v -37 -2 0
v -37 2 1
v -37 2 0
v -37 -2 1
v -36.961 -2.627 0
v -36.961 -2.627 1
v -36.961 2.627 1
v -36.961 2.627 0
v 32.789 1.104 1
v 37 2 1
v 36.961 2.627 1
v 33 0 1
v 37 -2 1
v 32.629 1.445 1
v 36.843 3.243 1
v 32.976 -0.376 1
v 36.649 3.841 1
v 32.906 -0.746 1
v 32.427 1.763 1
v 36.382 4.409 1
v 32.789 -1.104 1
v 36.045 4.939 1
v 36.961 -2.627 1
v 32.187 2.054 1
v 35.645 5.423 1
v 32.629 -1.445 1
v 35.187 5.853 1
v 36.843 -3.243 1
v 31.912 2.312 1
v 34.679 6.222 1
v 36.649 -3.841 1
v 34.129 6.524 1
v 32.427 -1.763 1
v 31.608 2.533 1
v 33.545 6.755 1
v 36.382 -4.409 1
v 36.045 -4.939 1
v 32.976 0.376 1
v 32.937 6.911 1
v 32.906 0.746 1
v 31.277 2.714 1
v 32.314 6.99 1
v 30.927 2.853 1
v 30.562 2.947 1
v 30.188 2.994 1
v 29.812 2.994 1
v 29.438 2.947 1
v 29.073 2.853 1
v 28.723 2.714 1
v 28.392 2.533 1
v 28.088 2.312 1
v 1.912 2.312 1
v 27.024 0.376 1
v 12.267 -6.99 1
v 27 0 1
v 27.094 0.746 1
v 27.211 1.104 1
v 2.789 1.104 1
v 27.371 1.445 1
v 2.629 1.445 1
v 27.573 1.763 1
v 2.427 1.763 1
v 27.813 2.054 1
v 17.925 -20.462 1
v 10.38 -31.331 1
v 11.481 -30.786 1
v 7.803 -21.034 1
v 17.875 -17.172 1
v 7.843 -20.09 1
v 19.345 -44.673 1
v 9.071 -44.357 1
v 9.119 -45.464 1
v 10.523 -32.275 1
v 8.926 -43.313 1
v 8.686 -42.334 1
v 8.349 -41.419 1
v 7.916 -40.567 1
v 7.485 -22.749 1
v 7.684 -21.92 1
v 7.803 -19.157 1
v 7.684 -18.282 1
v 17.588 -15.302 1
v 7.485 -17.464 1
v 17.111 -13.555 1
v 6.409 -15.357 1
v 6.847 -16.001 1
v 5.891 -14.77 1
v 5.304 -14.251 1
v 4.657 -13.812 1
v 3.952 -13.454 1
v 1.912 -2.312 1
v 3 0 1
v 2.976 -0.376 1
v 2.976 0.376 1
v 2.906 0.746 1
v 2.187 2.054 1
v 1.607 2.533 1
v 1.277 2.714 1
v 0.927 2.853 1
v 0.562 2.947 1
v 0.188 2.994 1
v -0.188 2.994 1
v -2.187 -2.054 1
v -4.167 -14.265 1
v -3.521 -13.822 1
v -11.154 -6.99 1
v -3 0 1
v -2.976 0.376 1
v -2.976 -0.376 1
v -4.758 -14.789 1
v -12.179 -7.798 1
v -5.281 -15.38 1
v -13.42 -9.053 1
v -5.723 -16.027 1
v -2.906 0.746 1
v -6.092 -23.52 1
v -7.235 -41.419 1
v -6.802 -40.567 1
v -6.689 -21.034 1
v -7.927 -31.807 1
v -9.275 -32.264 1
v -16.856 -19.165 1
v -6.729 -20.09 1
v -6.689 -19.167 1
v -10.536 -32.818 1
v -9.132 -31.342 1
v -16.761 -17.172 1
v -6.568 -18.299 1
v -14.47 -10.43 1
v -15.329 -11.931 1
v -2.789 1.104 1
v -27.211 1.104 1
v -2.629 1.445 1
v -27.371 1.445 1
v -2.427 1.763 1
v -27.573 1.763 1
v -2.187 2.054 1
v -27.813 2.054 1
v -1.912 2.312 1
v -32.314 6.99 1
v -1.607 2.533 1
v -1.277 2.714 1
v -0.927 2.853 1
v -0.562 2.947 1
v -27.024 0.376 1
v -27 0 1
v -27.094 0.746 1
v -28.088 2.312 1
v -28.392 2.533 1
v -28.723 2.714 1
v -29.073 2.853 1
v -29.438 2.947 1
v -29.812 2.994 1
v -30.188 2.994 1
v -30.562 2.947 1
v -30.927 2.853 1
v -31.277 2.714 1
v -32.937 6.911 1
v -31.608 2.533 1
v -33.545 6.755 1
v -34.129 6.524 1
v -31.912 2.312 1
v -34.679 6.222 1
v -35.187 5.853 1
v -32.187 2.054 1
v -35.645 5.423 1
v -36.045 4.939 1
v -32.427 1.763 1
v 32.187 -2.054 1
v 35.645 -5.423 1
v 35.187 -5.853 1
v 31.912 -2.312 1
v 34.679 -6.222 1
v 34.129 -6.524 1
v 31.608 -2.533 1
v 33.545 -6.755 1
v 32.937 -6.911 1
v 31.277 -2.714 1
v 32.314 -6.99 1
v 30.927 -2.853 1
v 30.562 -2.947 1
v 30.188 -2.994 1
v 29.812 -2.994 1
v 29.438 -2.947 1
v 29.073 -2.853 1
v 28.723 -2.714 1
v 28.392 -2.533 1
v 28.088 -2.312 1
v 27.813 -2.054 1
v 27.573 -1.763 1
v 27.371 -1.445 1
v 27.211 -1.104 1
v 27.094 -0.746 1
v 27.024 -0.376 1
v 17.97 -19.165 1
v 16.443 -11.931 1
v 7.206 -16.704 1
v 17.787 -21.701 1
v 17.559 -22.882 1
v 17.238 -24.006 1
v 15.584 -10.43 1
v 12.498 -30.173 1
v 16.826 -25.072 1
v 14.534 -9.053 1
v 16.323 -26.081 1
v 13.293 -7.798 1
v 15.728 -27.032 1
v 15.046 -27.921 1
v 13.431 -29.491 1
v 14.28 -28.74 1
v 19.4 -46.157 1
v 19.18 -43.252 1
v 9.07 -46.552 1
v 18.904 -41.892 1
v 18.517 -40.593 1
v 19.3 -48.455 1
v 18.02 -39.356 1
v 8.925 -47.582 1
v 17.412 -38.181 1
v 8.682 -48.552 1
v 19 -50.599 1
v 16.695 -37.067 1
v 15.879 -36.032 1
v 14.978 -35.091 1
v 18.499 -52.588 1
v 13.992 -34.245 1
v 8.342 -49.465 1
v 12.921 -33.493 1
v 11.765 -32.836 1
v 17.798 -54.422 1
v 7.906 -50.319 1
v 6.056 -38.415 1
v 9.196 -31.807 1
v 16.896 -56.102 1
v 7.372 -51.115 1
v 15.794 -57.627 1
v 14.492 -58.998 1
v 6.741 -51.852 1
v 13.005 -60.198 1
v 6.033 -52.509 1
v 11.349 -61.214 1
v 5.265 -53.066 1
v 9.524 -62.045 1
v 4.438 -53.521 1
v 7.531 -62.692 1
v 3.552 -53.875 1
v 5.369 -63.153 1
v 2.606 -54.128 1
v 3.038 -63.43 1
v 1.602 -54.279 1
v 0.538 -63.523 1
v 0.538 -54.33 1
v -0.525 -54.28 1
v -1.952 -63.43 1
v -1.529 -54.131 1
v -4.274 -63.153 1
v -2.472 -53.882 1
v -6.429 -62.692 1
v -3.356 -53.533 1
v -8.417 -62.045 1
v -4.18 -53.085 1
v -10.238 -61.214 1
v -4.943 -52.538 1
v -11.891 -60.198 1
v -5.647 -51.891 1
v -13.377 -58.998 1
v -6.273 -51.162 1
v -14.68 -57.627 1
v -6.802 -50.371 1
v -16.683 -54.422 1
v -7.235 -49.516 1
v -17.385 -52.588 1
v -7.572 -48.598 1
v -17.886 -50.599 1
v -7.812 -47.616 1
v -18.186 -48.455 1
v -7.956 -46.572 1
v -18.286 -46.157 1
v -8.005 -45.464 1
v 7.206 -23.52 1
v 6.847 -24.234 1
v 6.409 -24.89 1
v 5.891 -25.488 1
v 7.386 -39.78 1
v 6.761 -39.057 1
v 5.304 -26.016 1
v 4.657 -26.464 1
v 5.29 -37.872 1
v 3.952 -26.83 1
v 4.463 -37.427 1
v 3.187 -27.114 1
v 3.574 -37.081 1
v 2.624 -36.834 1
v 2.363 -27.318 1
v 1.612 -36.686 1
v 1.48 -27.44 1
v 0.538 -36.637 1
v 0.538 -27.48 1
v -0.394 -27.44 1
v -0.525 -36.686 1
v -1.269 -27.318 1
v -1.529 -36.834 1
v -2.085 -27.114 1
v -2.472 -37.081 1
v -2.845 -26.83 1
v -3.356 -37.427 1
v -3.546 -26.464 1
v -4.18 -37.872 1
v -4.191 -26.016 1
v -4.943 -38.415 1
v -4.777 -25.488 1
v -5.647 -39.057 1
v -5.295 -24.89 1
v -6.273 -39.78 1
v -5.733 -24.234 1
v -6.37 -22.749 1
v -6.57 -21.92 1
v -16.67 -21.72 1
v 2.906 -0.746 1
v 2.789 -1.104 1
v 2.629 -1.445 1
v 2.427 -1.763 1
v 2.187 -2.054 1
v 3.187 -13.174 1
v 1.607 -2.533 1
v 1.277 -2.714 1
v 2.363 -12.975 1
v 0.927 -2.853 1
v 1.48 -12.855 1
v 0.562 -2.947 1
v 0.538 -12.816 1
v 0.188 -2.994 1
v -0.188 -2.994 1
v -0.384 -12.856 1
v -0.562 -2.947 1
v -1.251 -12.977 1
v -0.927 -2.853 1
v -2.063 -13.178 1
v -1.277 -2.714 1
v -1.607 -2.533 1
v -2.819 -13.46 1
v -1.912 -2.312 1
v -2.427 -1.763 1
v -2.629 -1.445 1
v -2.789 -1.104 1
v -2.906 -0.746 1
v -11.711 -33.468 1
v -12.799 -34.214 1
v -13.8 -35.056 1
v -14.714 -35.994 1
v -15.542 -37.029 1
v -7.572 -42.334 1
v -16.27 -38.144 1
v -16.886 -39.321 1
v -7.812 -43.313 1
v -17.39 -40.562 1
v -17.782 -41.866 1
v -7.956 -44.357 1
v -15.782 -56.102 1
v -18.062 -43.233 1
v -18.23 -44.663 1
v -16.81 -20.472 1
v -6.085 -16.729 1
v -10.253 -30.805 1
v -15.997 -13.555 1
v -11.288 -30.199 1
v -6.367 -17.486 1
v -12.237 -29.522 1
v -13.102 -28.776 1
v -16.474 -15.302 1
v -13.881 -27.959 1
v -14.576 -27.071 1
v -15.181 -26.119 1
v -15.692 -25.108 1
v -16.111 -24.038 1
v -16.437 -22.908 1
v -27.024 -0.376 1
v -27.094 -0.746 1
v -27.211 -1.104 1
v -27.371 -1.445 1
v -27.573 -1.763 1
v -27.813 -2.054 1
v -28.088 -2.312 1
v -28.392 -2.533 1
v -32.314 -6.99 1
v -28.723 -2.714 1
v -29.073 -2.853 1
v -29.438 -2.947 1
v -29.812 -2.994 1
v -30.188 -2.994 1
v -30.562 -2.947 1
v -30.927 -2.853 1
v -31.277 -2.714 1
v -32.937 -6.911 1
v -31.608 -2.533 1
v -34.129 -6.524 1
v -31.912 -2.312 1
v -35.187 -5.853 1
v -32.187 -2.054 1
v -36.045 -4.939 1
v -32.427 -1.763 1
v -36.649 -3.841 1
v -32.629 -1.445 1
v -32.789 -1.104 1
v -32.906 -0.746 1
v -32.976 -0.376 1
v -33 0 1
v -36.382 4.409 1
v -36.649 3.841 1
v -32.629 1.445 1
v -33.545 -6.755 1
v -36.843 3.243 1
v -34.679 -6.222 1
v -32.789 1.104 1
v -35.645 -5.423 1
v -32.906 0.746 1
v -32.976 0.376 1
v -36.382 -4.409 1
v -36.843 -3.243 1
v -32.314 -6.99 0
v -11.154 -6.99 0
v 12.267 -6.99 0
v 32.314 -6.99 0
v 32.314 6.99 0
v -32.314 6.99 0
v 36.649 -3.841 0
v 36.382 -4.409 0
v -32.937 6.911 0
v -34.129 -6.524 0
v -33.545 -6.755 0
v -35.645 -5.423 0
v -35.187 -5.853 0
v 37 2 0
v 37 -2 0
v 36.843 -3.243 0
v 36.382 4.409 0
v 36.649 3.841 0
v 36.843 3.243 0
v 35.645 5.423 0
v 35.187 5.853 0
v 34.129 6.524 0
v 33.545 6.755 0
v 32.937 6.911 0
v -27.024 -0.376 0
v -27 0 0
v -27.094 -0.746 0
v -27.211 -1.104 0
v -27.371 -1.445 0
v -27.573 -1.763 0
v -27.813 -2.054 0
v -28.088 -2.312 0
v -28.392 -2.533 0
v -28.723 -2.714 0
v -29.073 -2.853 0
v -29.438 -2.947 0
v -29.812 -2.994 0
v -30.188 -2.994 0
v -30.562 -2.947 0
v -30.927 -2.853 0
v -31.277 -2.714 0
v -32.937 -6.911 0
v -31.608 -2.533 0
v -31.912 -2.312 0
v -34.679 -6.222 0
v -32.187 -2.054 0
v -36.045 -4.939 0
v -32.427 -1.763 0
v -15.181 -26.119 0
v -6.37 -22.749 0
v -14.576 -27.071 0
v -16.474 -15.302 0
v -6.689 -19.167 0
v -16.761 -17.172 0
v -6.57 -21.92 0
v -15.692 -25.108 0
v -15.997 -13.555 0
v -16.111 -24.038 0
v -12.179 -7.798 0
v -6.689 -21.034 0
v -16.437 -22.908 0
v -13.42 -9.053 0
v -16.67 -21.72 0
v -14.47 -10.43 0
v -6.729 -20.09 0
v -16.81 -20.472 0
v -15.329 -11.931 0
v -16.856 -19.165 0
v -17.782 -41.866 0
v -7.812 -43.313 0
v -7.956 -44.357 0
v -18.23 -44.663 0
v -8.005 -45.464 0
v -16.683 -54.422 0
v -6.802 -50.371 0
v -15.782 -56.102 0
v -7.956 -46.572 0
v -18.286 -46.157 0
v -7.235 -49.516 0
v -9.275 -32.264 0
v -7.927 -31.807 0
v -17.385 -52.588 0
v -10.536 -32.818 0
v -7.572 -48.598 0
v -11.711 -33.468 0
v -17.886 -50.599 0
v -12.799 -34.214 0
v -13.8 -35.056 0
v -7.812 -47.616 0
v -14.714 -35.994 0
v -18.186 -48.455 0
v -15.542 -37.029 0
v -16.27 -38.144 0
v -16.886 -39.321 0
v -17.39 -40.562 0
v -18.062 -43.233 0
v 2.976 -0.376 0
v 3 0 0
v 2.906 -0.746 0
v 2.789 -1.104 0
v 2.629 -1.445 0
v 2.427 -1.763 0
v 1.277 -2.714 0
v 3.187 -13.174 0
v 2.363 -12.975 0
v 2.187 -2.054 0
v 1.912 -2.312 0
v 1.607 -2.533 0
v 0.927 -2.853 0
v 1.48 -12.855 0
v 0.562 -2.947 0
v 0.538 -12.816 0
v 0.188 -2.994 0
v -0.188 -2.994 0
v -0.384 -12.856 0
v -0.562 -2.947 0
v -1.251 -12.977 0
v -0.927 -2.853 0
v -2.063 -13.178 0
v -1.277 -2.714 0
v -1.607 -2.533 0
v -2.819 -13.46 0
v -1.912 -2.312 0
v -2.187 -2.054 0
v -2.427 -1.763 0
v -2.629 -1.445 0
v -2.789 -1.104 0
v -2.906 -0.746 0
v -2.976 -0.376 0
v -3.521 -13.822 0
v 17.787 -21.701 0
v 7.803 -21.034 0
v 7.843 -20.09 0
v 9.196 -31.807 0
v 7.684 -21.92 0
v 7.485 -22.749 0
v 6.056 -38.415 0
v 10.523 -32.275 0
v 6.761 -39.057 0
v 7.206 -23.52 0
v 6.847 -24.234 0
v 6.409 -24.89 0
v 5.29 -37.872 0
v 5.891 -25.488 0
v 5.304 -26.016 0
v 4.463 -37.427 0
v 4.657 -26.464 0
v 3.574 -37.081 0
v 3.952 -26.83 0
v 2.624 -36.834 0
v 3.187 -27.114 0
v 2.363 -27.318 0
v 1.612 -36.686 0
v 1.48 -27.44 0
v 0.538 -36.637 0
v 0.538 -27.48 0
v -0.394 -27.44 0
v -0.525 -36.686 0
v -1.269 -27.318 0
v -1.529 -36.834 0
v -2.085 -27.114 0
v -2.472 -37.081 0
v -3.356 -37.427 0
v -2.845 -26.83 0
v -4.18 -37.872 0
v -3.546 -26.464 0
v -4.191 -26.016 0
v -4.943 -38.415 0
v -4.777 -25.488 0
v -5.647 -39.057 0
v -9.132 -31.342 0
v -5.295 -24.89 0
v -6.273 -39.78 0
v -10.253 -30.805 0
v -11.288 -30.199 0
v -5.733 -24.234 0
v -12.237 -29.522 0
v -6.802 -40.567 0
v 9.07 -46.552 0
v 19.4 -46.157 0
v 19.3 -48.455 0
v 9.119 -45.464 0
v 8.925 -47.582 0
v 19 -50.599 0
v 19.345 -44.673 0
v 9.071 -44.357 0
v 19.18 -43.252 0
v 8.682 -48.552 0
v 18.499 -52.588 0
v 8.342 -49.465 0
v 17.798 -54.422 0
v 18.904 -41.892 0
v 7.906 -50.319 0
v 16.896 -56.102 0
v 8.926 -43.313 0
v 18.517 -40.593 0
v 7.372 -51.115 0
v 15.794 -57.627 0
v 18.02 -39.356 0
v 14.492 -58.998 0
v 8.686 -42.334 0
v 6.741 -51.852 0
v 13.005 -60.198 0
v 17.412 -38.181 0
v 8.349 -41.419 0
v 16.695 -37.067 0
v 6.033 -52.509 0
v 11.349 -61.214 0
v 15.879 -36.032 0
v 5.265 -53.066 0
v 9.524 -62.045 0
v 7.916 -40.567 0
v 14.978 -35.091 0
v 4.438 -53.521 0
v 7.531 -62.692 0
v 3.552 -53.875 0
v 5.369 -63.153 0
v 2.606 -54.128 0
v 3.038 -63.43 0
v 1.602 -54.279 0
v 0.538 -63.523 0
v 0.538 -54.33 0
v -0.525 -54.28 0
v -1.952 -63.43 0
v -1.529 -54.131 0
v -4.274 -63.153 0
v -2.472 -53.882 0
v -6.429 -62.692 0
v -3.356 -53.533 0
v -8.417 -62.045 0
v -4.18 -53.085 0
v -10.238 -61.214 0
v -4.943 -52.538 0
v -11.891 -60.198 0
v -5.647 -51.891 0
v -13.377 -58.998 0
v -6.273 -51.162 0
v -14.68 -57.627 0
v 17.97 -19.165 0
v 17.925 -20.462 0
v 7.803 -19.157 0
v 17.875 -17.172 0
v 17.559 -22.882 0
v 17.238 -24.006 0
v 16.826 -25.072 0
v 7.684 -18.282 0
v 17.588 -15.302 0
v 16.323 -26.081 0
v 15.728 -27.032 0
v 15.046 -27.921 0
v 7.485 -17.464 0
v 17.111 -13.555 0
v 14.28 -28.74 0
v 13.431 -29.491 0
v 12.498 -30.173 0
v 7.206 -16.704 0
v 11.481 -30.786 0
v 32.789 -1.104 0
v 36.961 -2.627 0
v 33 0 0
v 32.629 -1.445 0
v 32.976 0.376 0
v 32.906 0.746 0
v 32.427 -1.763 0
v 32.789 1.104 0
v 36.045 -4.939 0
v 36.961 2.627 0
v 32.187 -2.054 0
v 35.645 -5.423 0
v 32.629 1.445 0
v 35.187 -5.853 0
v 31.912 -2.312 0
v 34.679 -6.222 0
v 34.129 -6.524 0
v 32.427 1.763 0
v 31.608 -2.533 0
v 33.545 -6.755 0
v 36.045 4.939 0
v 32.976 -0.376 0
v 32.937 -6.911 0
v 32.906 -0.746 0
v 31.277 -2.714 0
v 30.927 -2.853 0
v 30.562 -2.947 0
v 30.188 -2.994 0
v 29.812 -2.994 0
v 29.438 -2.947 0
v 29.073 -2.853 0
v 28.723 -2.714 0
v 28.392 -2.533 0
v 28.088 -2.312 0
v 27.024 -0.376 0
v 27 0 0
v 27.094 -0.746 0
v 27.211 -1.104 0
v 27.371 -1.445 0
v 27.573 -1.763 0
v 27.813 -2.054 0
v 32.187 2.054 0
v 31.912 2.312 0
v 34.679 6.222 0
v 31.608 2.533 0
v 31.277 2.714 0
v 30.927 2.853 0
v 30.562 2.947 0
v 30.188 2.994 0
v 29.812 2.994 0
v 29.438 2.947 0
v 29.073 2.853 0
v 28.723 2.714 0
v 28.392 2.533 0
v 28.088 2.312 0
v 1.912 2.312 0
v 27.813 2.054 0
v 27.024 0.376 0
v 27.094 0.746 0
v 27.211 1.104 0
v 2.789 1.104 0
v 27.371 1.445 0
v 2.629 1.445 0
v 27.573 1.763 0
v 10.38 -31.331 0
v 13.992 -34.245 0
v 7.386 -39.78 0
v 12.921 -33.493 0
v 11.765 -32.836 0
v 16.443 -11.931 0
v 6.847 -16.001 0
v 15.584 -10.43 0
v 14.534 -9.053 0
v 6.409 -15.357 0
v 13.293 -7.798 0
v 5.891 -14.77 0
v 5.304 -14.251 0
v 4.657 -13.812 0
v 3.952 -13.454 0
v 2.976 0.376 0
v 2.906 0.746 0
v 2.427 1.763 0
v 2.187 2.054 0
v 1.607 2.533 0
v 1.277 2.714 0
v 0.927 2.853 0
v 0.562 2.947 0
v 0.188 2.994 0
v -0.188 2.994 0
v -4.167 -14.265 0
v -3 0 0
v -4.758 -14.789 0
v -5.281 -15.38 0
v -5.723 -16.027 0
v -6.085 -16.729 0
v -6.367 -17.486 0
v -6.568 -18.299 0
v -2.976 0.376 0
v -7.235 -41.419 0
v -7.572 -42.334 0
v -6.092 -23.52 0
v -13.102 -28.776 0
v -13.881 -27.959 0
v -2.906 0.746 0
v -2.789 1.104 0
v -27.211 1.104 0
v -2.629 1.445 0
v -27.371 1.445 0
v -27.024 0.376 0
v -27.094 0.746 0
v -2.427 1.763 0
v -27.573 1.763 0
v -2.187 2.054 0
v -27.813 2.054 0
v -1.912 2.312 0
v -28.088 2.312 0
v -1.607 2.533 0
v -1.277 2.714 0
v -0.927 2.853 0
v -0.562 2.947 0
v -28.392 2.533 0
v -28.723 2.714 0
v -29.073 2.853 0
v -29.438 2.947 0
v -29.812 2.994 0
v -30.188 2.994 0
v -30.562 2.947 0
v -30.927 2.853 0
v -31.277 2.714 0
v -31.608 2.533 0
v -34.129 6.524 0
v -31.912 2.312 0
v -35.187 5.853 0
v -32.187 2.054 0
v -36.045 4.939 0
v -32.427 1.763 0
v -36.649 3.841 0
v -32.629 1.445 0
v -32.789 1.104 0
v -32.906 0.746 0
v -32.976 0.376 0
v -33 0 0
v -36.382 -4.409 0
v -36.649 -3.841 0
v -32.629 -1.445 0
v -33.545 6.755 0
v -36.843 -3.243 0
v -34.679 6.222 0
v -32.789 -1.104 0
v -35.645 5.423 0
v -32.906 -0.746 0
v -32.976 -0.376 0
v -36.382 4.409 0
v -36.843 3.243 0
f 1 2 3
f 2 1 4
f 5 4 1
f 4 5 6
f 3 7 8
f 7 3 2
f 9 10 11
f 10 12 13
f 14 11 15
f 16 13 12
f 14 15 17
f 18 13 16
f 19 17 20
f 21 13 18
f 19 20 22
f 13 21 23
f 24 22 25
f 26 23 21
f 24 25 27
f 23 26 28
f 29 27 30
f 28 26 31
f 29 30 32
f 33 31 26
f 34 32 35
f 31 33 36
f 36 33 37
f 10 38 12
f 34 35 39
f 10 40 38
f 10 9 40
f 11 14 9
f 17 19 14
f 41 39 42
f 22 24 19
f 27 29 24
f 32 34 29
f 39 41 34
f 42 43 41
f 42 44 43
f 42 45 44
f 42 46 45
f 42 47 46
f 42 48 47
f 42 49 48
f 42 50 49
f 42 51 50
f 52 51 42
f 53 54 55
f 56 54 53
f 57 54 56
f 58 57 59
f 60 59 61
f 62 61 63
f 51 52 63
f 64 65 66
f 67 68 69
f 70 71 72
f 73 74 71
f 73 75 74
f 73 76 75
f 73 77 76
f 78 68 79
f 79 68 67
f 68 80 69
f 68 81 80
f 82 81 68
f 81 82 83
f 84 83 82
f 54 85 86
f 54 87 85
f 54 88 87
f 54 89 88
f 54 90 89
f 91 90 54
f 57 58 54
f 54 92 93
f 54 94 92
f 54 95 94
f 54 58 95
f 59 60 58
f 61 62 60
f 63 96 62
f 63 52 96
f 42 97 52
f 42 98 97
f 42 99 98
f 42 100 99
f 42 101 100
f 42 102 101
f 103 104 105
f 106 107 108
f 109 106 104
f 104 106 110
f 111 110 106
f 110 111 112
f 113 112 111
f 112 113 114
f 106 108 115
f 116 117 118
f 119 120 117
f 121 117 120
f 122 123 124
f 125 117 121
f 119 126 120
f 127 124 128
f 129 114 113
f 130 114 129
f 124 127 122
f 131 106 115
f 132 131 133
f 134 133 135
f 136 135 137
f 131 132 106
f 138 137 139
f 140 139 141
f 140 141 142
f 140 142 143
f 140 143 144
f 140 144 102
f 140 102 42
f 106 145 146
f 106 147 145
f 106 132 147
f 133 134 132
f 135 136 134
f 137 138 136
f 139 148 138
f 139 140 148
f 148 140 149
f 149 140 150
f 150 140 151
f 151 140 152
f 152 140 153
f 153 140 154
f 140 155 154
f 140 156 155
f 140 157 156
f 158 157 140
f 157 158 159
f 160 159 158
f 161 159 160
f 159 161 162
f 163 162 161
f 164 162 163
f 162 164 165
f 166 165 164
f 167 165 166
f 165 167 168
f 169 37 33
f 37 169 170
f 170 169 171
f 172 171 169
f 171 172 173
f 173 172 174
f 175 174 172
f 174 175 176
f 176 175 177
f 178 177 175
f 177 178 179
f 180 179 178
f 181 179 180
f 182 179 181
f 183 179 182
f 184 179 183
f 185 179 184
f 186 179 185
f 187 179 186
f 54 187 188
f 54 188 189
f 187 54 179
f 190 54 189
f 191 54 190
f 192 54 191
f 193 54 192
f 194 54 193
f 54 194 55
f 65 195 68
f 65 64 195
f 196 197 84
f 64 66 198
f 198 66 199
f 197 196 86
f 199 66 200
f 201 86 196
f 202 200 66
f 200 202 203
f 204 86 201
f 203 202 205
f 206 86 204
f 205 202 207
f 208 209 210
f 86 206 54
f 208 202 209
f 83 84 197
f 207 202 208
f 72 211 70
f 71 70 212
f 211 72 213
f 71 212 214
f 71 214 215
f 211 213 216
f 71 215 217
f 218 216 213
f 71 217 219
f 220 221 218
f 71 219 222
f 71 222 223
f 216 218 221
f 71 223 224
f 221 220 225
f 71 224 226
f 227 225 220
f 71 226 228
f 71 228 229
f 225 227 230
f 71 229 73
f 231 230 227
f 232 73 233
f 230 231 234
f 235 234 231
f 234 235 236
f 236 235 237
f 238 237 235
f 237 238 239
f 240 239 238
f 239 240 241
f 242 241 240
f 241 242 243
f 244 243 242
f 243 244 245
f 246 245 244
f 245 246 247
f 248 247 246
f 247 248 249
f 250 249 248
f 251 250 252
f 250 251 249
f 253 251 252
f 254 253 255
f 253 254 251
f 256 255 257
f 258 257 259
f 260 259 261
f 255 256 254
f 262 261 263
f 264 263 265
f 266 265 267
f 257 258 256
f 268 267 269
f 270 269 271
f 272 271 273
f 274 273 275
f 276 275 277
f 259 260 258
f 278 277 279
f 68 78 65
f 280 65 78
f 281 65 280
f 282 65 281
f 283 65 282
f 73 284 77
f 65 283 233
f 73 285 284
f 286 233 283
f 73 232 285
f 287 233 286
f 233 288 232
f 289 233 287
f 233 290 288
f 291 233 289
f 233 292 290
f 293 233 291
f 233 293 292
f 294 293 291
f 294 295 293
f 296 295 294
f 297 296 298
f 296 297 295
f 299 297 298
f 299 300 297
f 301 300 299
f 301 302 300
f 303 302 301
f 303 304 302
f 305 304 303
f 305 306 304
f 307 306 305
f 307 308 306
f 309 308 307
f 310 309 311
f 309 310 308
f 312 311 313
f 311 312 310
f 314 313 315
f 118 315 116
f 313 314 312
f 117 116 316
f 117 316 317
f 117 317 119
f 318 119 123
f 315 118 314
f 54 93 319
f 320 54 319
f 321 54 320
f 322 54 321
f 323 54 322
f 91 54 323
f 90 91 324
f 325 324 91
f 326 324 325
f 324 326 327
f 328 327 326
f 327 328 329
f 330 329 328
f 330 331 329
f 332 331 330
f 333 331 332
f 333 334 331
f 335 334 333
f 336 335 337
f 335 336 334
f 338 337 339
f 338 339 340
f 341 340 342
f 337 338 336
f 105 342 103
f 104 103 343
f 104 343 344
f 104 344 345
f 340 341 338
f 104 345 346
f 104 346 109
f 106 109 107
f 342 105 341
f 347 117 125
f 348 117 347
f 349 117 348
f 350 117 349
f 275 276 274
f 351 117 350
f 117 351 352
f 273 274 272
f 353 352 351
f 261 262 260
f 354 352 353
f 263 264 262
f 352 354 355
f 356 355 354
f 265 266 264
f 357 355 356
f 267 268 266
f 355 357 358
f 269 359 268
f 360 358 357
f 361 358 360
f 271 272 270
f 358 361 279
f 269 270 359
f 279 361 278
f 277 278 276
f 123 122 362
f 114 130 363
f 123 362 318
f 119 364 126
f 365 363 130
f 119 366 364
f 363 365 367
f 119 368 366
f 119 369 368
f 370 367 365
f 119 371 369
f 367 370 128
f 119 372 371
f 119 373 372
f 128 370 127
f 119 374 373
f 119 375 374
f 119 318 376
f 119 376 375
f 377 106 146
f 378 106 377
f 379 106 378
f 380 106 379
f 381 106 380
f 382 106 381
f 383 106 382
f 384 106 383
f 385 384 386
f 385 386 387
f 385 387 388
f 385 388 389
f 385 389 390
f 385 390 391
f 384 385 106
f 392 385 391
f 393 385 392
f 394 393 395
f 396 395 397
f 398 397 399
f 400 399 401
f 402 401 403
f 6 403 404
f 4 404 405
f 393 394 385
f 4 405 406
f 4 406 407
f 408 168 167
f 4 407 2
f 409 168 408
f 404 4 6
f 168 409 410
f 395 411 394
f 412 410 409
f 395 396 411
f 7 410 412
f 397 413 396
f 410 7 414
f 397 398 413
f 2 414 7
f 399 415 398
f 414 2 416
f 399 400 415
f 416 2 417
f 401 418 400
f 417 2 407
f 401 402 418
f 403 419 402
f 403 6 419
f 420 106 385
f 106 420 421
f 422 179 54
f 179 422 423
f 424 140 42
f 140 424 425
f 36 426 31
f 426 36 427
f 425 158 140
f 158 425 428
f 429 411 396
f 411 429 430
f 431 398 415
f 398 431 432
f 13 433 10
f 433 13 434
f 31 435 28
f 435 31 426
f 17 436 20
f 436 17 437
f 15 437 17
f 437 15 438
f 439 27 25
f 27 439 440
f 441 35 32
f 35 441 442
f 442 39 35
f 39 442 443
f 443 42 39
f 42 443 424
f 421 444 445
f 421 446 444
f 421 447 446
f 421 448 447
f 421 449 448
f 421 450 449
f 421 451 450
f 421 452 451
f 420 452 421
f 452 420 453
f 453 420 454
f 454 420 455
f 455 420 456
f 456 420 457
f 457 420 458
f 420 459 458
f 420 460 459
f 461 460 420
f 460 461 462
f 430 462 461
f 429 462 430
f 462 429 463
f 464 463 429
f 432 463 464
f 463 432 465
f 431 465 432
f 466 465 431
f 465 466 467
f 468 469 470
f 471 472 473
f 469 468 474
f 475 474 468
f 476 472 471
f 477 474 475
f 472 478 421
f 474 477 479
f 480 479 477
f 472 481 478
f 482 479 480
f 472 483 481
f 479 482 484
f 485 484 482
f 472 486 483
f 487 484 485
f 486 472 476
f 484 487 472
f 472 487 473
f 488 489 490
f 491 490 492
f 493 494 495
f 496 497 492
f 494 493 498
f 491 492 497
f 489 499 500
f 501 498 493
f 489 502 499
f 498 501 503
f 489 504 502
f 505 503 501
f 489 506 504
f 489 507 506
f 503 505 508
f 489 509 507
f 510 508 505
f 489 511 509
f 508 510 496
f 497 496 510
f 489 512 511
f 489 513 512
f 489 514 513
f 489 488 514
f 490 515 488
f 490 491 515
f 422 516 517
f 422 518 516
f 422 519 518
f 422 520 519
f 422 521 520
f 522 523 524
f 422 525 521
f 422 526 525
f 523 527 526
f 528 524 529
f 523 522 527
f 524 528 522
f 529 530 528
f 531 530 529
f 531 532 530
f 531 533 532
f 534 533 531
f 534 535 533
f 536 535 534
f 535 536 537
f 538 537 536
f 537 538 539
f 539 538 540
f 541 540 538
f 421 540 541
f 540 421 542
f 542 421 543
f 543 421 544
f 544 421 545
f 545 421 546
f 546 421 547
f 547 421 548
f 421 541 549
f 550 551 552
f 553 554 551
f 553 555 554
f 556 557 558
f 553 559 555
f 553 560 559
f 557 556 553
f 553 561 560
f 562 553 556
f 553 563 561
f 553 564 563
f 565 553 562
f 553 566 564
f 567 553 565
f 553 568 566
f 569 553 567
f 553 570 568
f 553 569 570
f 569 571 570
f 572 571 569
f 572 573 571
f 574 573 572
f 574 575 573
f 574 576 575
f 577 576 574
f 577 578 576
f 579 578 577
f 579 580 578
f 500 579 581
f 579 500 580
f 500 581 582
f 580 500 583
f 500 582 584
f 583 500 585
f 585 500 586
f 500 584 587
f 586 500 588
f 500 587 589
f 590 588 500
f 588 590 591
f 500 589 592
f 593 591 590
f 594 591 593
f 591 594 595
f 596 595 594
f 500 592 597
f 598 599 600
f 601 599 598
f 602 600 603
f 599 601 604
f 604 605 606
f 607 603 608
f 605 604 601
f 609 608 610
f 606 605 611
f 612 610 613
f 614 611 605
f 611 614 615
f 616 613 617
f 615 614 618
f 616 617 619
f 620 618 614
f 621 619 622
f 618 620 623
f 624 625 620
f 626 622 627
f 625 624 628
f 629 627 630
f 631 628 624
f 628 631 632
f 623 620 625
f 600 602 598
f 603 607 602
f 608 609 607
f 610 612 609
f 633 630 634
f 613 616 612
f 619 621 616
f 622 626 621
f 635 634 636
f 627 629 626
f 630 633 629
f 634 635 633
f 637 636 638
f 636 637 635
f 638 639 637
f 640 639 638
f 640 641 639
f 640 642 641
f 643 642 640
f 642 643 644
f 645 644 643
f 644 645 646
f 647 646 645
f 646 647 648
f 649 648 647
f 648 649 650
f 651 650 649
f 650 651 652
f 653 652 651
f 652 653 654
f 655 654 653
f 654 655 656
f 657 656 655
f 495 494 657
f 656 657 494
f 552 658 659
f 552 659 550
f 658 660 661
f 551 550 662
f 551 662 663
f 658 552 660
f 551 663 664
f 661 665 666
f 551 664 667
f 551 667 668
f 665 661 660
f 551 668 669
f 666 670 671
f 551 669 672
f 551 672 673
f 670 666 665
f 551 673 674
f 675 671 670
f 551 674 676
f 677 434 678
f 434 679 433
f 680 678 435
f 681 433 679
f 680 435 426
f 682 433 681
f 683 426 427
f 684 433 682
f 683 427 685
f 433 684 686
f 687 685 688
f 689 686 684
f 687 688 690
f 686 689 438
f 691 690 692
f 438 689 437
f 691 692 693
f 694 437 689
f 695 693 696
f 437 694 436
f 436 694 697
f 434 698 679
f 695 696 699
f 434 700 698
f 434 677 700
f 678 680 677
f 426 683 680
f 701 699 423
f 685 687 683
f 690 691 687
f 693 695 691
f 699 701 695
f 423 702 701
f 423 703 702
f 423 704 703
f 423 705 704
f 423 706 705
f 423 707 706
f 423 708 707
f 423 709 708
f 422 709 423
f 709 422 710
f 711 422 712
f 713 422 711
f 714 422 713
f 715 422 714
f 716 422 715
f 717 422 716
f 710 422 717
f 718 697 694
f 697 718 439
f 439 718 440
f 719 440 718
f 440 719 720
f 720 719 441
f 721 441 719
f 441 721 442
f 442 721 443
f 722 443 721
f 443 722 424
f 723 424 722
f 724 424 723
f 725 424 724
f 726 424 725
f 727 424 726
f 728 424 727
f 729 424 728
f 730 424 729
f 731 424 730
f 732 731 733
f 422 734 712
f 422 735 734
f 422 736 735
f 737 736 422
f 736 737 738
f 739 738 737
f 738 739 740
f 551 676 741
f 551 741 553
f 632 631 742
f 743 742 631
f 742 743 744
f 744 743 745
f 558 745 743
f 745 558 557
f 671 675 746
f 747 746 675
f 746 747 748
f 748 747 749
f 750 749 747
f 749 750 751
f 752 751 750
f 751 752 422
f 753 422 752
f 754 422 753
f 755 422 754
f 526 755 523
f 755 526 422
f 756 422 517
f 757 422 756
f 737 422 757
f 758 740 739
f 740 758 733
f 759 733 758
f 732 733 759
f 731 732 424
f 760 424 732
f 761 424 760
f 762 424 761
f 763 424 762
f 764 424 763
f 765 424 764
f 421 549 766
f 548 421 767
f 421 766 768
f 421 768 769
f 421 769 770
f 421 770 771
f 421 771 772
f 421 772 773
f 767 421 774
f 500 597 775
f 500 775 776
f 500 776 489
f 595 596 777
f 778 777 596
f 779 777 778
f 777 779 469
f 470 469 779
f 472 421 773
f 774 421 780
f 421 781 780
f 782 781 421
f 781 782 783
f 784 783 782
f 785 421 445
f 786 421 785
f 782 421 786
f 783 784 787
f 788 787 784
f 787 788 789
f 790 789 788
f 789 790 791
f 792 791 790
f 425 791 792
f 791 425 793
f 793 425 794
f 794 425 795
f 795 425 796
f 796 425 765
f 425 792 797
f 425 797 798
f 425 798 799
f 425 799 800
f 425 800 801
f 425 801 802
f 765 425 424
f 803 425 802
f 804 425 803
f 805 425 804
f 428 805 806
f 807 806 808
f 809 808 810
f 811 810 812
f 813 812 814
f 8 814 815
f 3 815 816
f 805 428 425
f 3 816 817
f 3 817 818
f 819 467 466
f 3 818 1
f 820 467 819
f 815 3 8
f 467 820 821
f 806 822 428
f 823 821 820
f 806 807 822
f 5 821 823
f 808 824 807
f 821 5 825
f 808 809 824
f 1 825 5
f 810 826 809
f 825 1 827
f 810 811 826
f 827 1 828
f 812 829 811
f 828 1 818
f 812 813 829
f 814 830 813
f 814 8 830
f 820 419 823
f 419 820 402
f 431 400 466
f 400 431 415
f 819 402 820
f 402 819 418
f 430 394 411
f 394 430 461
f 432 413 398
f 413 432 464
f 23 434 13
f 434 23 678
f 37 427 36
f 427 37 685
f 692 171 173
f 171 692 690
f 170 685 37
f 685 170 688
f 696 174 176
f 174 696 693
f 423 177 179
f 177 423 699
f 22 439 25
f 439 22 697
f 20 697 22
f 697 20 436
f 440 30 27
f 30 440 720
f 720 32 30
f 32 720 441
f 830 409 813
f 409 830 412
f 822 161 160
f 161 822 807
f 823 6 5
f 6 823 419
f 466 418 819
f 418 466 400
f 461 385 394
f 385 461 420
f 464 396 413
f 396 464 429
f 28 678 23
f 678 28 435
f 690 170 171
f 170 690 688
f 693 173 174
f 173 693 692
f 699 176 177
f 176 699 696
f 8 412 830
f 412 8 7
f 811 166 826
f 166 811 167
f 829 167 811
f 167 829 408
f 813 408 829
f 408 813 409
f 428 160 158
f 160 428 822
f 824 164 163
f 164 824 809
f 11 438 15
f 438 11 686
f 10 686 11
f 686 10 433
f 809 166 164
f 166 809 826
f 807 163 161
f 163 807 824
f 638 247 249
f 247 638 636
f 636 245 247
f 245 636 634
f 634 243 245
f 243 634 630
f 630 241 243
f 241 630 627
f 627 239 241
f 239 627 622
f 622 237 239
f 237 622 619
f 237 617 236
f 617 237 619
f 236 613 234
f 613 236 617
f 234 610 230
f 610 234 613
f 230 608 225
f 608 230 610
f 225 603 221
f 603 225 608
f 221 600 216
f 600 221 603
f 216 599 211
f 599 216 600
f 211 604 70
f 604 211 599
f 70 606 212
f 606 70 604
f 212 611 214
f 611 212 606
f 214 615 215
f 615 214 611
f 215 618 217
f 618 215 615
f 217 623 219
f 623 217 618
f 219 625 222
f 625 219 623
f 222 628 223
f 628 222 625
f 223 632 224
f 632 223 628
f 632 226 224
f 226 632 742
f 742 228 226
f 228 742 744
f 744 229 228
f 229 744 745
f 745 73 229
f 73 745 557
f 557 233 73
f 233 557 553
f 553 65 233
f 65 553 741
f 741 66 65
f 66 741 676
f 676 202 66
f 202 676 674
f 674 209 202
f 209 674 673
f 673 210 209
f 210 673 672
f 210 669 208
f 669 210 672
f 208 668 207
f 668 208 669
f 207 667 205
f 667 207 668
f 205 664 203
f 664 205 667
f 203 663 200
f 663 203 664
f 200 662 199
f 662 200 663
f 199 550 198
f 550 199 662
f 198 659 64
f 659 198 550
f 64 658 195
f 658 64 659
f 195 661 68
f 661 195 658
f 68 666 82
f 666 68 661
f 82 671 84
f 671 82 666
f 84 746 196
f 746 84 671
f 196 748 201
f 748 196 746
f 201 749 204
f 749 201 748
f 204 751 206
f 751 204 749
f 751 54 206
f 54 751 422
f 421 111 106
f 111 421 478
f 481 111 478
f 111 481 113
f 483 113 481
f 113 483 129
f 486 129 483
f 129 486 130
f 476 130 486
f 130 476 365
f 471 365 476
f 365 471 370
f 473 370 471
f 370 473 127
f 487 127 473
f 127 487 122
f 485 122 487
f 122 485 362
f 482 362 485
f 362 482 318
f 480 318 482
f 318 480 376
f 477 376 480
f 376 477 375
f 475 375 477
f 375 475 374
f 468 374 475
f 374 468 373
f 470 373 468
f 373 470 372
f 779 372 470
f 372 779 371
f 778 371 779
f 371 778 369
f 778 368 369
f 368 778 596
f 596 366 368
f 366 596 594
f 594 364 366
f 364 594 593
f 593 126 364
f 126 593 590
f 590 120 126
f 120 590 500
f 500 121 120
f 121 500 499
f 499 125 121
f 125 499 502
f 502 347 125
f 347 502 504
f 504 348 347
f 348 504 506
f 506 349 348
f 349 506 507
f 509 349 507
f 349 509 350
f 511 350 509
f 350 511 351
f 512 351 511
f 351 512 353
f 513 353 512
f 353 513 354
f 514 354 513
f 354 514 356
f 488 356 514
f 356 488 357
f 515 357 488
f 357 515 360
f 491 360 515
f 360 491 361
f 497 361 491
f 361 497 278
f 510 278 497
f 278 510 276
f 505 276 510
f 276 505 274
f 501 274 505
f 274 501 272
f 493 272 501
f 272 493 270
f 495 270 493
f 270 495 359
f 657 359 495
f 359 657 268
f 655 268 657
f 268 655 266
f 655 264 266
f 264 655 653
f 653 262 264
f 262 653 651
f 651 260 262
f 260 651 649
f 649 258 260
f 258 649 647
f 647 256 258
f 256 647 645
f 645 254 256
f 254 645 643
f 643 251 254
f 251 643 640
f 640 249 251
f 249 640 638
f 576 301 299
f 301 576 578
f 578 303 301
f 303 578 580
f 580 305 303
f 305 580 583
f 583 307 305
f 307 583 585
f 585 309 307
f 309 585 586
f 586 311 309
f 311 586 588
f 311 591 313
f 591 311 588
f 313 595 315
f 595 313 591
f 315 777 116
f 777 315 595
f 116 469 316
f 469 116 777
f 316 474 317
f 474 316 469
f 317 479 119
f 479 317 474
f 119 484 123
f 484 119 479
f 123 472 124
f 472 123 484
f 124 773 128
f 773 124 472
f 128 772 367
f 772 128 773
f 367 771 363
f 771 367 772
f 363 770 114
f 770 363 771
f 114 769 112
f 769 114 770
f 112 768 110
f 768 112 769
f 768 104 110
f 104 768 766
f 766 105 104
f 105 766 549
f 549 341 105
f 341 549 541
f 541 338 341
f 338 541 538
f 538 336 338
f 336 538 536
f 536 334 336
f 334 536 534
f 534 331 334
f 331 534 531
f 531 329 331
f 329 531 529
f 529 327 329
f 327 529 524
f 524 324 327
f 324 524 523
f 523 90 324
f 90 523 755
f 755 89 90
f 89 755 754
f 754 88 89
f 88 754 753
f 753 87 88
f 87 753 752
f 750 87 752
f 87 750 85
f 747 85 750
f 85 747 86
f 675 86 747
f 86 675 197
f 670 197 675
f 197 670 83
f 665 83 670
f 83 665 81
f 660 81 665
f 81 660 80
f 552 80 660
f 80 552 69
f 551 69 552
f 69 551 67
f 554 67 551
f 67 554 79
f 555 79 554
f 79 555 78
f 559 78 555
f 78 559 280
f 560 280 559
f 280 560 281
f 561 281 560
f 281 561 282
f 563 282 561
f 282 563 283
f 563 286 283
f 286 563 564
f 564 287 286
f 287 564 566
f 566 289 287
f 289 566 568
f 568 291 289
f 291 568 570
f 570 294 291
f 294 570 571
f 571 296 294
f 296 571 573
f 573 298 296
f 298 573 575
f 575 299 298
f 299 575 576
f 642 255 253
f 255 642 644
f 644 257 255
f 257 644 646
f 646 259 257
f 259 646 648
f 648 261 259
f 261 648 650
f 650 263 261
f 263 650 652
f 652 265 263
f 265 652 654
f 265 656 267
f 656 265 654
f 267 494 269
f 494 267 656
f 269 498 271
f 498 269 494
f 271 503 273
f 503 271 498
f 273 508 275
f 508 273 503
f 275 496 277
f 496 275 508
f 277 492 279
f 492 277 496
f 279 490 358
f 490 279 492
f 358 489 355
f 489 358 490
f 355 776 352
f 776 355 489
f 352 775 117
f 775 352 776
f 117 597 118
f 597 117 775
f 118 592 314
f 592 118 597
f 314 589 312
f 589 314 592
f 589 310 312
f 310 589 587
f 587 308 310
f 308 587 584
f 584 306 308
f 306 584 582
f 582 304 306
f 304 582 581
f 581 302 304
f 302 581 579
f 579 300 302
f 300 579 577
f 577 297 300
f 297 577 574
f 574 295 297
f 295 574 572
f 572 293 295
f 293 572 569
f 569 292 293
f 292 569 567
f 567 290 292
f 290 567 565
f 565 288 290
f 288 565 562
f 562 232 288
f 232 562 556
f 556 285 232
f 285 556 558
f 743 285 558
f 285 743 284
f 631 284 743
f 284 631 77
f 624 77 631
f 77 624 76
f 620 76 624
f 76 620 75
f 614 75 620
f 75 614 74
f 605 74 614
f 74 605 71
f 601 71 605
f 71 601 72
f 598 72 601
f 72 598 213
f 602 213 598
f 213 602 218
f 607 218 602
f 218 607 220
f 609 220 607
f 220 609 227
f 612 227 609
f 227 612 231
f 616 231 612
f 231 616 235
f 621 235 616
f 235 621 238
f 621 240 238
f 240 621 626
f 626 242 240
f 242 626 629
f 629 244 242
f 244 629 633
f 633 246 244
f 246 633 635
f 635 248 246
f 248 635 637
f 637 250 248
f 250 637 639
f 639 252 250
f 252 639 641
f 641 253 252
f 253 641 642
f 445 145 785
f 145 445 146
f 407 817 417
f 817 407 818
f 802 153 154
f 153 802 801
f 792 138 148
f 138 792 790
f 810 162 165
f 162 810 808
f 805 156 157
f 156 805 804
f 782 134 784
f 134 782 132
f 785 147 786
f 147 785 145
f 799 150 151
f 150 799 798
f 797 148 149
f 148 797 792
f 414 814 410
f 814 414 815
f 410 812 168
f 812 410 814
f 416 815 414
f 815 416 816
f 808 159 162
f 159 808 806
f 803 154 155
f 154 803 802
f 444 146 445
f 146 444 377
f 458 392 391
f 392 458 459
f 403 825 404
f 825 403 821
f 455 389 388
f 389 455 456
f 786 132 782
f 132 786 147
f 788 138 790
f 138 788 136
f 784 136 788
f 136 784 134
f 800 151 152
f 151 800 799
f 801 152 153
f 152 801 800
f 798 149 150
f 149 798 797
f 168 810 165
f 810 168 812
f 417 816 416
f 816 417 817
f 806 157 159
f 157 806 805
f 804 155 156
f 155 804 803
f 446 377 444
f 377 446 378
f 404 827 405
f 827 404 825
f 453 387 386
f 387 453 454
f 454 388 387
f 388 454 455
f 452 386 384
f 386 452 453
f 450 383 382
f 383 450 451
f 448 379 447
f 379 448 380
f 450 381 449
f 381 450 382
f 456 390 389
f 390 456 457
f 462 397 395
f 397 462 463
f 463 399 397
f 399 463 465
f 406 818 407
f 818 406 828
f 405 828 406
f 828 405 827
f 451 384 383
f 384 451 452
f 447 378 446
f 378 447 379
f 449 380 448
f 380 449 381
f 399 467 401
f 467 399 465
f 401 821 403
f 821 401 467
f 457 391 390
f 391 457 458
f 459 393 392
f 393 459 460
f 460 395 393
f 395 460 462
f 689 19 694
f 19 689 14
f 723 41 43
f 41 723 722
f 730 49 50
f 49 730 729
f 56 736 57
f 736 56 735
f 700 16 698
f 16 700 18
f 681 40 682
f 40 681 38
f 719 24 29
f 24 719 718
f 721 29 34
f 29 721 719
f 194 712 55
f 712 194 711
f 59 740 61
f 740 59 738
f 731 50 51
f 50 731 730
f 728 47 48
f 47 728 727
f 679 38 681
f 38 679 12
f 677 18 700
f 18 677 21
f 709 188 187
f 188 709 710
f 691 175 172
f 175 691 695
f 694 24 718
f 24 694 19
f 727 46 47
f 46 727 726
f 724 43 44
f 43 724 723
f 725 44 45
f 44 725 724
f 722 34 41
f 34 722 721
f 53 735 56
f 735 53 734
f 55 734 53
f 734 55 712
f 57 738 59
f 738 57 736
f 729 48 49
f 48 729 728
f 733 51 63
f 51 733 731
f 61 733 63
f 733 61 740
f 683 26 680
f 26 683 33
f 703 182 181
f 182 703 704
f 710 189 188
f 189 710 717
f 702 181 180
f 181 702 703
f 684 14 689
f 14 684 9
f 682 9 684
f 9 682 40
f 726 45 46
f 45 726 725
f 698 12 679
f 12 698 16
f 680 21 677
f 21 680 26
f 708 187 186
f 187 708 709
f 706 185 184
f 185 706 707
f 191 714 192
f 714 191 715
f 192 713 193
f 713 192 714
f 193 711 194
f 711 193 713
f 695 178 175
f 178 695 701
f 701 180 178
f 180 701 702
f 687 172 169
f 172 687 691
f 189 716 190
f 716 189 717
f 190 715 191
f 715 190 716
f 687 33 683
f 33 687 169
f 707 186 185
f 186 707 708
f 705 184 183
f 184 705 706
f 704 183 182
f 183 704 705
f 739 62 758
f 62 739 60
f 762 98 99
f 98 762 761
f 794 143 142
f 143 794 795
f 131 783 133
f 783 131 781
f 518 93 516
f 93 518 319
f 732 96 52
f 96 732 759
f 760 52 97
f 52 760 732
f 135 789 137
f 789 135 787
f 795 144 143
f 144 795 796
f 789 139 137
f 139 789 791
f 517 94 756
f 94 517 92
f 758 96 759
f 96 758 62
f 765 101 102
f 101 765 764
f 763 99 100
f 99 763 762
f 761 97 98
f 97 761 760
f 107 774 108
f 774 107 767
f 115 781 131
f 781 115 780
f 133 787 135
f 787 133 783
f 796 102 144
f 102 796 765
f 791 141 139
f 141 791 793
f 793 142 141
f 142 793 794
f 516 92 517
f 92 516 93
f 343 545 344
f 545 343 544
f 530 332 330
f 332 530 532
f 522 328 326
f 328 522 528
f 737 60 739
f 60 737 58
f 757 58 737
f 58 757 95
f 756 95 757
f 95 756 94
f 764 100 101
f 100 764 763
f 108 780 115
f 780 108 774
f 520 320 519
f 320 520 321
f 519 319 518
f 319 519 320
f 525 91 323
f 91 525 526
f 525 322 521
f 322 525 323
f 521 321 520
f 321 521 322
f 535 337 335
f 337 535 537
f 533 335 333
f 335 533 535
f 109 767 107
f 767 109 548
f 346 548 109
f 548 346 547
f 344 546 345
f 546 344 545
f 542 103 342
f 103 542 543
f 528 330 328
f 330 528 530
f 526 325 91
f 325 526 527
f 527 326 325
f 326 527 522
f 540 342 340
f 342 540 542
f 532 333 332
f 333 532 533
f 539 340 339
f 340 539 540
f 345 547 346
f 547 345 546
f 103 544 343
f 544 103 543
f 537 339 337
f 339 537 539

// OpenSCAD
$fn = 50;


difference() {
	union() {
		translate(v = [0, 0, 0]) {
			rotate(a = [0, 0, 0]) {
				hull() {
					translate(v = [-32.0000000000, 2.0000000000, 0]) {
						rotate(a = [0, 0, 0]) {
							translate(v = [0, 0, 0]) {
								rotate(a = [0, 0, 0]) {
									cylinder(h = 1, r = 5);
								}
							}
						}
					}
					translate(v = [32.0000000000, 2.0000000000, 0]) {
						rotate(a = [0, 0, 0]) {
							translate(v = [0, 0, 0]) {
								rotate(a = [0, 0, 0]) {
									cylinder(h = 1, r = 5);
								}
							}
						}
					}
					translate(v = [-32.0000000000, -2.0000000000, 0]) {
						rotate(a = [0, 0, 0]) {
							translate(v = [0, 0, 0]) {
								rotate(a = [0, 0, 0]) {
									cylinder(h = 1, r = 5);
								}
							}
						}
					}
					translate(v = [32.0000000000, -2.0000000000, 0]) {
						rotate(a = [0, 0, 0]) {
							translate(v = [0, 0, 0]) {
								rotate(a = [0, 0, 0]) {
									cylinder(h = 1, r = 5);
								}
							}
						}
					}
				}
			}
		}
		translate(v = [0, -5, 0]) {
			rotate(a = [0, 0, 0]) {
				linear_extrude(height = 1) {
					text(font = "DejaVu Sans Mono:style=Bold", halign = "center", size = 57.0000000000, text = "8", valign = "top");
				}
			}
		}
	}
	union() {
		translate(v = [-30.0000000000, 0.0000000000, -125.0000000000]) {
			rotate(a = [0, 0, 0]) {
				cylinder(h = 250, r = 3.0000000000);
			}
		}
		translate(v = [30.0000000000, 0.0000000000, -125.0000000000]) {
			rotate(a = [0, 0, 0]) {
				cylinder(h = 250, r = 3.0000000000);
			}
		}
		translate(v = [30.0000000000, 0.0000000000, -125.0000000000]) {
			rotate(a = [0, 0, 0]) {
				cylinder(h = 250, r = 3.0000000000);
			}
		}
		translate(v = [0, 0, -125.0000000000]) {
			rotate(a = [0, 0, 0]) {
				cylinder(h = 250, r = 3.0000000000);
			}
		}
	}
}
